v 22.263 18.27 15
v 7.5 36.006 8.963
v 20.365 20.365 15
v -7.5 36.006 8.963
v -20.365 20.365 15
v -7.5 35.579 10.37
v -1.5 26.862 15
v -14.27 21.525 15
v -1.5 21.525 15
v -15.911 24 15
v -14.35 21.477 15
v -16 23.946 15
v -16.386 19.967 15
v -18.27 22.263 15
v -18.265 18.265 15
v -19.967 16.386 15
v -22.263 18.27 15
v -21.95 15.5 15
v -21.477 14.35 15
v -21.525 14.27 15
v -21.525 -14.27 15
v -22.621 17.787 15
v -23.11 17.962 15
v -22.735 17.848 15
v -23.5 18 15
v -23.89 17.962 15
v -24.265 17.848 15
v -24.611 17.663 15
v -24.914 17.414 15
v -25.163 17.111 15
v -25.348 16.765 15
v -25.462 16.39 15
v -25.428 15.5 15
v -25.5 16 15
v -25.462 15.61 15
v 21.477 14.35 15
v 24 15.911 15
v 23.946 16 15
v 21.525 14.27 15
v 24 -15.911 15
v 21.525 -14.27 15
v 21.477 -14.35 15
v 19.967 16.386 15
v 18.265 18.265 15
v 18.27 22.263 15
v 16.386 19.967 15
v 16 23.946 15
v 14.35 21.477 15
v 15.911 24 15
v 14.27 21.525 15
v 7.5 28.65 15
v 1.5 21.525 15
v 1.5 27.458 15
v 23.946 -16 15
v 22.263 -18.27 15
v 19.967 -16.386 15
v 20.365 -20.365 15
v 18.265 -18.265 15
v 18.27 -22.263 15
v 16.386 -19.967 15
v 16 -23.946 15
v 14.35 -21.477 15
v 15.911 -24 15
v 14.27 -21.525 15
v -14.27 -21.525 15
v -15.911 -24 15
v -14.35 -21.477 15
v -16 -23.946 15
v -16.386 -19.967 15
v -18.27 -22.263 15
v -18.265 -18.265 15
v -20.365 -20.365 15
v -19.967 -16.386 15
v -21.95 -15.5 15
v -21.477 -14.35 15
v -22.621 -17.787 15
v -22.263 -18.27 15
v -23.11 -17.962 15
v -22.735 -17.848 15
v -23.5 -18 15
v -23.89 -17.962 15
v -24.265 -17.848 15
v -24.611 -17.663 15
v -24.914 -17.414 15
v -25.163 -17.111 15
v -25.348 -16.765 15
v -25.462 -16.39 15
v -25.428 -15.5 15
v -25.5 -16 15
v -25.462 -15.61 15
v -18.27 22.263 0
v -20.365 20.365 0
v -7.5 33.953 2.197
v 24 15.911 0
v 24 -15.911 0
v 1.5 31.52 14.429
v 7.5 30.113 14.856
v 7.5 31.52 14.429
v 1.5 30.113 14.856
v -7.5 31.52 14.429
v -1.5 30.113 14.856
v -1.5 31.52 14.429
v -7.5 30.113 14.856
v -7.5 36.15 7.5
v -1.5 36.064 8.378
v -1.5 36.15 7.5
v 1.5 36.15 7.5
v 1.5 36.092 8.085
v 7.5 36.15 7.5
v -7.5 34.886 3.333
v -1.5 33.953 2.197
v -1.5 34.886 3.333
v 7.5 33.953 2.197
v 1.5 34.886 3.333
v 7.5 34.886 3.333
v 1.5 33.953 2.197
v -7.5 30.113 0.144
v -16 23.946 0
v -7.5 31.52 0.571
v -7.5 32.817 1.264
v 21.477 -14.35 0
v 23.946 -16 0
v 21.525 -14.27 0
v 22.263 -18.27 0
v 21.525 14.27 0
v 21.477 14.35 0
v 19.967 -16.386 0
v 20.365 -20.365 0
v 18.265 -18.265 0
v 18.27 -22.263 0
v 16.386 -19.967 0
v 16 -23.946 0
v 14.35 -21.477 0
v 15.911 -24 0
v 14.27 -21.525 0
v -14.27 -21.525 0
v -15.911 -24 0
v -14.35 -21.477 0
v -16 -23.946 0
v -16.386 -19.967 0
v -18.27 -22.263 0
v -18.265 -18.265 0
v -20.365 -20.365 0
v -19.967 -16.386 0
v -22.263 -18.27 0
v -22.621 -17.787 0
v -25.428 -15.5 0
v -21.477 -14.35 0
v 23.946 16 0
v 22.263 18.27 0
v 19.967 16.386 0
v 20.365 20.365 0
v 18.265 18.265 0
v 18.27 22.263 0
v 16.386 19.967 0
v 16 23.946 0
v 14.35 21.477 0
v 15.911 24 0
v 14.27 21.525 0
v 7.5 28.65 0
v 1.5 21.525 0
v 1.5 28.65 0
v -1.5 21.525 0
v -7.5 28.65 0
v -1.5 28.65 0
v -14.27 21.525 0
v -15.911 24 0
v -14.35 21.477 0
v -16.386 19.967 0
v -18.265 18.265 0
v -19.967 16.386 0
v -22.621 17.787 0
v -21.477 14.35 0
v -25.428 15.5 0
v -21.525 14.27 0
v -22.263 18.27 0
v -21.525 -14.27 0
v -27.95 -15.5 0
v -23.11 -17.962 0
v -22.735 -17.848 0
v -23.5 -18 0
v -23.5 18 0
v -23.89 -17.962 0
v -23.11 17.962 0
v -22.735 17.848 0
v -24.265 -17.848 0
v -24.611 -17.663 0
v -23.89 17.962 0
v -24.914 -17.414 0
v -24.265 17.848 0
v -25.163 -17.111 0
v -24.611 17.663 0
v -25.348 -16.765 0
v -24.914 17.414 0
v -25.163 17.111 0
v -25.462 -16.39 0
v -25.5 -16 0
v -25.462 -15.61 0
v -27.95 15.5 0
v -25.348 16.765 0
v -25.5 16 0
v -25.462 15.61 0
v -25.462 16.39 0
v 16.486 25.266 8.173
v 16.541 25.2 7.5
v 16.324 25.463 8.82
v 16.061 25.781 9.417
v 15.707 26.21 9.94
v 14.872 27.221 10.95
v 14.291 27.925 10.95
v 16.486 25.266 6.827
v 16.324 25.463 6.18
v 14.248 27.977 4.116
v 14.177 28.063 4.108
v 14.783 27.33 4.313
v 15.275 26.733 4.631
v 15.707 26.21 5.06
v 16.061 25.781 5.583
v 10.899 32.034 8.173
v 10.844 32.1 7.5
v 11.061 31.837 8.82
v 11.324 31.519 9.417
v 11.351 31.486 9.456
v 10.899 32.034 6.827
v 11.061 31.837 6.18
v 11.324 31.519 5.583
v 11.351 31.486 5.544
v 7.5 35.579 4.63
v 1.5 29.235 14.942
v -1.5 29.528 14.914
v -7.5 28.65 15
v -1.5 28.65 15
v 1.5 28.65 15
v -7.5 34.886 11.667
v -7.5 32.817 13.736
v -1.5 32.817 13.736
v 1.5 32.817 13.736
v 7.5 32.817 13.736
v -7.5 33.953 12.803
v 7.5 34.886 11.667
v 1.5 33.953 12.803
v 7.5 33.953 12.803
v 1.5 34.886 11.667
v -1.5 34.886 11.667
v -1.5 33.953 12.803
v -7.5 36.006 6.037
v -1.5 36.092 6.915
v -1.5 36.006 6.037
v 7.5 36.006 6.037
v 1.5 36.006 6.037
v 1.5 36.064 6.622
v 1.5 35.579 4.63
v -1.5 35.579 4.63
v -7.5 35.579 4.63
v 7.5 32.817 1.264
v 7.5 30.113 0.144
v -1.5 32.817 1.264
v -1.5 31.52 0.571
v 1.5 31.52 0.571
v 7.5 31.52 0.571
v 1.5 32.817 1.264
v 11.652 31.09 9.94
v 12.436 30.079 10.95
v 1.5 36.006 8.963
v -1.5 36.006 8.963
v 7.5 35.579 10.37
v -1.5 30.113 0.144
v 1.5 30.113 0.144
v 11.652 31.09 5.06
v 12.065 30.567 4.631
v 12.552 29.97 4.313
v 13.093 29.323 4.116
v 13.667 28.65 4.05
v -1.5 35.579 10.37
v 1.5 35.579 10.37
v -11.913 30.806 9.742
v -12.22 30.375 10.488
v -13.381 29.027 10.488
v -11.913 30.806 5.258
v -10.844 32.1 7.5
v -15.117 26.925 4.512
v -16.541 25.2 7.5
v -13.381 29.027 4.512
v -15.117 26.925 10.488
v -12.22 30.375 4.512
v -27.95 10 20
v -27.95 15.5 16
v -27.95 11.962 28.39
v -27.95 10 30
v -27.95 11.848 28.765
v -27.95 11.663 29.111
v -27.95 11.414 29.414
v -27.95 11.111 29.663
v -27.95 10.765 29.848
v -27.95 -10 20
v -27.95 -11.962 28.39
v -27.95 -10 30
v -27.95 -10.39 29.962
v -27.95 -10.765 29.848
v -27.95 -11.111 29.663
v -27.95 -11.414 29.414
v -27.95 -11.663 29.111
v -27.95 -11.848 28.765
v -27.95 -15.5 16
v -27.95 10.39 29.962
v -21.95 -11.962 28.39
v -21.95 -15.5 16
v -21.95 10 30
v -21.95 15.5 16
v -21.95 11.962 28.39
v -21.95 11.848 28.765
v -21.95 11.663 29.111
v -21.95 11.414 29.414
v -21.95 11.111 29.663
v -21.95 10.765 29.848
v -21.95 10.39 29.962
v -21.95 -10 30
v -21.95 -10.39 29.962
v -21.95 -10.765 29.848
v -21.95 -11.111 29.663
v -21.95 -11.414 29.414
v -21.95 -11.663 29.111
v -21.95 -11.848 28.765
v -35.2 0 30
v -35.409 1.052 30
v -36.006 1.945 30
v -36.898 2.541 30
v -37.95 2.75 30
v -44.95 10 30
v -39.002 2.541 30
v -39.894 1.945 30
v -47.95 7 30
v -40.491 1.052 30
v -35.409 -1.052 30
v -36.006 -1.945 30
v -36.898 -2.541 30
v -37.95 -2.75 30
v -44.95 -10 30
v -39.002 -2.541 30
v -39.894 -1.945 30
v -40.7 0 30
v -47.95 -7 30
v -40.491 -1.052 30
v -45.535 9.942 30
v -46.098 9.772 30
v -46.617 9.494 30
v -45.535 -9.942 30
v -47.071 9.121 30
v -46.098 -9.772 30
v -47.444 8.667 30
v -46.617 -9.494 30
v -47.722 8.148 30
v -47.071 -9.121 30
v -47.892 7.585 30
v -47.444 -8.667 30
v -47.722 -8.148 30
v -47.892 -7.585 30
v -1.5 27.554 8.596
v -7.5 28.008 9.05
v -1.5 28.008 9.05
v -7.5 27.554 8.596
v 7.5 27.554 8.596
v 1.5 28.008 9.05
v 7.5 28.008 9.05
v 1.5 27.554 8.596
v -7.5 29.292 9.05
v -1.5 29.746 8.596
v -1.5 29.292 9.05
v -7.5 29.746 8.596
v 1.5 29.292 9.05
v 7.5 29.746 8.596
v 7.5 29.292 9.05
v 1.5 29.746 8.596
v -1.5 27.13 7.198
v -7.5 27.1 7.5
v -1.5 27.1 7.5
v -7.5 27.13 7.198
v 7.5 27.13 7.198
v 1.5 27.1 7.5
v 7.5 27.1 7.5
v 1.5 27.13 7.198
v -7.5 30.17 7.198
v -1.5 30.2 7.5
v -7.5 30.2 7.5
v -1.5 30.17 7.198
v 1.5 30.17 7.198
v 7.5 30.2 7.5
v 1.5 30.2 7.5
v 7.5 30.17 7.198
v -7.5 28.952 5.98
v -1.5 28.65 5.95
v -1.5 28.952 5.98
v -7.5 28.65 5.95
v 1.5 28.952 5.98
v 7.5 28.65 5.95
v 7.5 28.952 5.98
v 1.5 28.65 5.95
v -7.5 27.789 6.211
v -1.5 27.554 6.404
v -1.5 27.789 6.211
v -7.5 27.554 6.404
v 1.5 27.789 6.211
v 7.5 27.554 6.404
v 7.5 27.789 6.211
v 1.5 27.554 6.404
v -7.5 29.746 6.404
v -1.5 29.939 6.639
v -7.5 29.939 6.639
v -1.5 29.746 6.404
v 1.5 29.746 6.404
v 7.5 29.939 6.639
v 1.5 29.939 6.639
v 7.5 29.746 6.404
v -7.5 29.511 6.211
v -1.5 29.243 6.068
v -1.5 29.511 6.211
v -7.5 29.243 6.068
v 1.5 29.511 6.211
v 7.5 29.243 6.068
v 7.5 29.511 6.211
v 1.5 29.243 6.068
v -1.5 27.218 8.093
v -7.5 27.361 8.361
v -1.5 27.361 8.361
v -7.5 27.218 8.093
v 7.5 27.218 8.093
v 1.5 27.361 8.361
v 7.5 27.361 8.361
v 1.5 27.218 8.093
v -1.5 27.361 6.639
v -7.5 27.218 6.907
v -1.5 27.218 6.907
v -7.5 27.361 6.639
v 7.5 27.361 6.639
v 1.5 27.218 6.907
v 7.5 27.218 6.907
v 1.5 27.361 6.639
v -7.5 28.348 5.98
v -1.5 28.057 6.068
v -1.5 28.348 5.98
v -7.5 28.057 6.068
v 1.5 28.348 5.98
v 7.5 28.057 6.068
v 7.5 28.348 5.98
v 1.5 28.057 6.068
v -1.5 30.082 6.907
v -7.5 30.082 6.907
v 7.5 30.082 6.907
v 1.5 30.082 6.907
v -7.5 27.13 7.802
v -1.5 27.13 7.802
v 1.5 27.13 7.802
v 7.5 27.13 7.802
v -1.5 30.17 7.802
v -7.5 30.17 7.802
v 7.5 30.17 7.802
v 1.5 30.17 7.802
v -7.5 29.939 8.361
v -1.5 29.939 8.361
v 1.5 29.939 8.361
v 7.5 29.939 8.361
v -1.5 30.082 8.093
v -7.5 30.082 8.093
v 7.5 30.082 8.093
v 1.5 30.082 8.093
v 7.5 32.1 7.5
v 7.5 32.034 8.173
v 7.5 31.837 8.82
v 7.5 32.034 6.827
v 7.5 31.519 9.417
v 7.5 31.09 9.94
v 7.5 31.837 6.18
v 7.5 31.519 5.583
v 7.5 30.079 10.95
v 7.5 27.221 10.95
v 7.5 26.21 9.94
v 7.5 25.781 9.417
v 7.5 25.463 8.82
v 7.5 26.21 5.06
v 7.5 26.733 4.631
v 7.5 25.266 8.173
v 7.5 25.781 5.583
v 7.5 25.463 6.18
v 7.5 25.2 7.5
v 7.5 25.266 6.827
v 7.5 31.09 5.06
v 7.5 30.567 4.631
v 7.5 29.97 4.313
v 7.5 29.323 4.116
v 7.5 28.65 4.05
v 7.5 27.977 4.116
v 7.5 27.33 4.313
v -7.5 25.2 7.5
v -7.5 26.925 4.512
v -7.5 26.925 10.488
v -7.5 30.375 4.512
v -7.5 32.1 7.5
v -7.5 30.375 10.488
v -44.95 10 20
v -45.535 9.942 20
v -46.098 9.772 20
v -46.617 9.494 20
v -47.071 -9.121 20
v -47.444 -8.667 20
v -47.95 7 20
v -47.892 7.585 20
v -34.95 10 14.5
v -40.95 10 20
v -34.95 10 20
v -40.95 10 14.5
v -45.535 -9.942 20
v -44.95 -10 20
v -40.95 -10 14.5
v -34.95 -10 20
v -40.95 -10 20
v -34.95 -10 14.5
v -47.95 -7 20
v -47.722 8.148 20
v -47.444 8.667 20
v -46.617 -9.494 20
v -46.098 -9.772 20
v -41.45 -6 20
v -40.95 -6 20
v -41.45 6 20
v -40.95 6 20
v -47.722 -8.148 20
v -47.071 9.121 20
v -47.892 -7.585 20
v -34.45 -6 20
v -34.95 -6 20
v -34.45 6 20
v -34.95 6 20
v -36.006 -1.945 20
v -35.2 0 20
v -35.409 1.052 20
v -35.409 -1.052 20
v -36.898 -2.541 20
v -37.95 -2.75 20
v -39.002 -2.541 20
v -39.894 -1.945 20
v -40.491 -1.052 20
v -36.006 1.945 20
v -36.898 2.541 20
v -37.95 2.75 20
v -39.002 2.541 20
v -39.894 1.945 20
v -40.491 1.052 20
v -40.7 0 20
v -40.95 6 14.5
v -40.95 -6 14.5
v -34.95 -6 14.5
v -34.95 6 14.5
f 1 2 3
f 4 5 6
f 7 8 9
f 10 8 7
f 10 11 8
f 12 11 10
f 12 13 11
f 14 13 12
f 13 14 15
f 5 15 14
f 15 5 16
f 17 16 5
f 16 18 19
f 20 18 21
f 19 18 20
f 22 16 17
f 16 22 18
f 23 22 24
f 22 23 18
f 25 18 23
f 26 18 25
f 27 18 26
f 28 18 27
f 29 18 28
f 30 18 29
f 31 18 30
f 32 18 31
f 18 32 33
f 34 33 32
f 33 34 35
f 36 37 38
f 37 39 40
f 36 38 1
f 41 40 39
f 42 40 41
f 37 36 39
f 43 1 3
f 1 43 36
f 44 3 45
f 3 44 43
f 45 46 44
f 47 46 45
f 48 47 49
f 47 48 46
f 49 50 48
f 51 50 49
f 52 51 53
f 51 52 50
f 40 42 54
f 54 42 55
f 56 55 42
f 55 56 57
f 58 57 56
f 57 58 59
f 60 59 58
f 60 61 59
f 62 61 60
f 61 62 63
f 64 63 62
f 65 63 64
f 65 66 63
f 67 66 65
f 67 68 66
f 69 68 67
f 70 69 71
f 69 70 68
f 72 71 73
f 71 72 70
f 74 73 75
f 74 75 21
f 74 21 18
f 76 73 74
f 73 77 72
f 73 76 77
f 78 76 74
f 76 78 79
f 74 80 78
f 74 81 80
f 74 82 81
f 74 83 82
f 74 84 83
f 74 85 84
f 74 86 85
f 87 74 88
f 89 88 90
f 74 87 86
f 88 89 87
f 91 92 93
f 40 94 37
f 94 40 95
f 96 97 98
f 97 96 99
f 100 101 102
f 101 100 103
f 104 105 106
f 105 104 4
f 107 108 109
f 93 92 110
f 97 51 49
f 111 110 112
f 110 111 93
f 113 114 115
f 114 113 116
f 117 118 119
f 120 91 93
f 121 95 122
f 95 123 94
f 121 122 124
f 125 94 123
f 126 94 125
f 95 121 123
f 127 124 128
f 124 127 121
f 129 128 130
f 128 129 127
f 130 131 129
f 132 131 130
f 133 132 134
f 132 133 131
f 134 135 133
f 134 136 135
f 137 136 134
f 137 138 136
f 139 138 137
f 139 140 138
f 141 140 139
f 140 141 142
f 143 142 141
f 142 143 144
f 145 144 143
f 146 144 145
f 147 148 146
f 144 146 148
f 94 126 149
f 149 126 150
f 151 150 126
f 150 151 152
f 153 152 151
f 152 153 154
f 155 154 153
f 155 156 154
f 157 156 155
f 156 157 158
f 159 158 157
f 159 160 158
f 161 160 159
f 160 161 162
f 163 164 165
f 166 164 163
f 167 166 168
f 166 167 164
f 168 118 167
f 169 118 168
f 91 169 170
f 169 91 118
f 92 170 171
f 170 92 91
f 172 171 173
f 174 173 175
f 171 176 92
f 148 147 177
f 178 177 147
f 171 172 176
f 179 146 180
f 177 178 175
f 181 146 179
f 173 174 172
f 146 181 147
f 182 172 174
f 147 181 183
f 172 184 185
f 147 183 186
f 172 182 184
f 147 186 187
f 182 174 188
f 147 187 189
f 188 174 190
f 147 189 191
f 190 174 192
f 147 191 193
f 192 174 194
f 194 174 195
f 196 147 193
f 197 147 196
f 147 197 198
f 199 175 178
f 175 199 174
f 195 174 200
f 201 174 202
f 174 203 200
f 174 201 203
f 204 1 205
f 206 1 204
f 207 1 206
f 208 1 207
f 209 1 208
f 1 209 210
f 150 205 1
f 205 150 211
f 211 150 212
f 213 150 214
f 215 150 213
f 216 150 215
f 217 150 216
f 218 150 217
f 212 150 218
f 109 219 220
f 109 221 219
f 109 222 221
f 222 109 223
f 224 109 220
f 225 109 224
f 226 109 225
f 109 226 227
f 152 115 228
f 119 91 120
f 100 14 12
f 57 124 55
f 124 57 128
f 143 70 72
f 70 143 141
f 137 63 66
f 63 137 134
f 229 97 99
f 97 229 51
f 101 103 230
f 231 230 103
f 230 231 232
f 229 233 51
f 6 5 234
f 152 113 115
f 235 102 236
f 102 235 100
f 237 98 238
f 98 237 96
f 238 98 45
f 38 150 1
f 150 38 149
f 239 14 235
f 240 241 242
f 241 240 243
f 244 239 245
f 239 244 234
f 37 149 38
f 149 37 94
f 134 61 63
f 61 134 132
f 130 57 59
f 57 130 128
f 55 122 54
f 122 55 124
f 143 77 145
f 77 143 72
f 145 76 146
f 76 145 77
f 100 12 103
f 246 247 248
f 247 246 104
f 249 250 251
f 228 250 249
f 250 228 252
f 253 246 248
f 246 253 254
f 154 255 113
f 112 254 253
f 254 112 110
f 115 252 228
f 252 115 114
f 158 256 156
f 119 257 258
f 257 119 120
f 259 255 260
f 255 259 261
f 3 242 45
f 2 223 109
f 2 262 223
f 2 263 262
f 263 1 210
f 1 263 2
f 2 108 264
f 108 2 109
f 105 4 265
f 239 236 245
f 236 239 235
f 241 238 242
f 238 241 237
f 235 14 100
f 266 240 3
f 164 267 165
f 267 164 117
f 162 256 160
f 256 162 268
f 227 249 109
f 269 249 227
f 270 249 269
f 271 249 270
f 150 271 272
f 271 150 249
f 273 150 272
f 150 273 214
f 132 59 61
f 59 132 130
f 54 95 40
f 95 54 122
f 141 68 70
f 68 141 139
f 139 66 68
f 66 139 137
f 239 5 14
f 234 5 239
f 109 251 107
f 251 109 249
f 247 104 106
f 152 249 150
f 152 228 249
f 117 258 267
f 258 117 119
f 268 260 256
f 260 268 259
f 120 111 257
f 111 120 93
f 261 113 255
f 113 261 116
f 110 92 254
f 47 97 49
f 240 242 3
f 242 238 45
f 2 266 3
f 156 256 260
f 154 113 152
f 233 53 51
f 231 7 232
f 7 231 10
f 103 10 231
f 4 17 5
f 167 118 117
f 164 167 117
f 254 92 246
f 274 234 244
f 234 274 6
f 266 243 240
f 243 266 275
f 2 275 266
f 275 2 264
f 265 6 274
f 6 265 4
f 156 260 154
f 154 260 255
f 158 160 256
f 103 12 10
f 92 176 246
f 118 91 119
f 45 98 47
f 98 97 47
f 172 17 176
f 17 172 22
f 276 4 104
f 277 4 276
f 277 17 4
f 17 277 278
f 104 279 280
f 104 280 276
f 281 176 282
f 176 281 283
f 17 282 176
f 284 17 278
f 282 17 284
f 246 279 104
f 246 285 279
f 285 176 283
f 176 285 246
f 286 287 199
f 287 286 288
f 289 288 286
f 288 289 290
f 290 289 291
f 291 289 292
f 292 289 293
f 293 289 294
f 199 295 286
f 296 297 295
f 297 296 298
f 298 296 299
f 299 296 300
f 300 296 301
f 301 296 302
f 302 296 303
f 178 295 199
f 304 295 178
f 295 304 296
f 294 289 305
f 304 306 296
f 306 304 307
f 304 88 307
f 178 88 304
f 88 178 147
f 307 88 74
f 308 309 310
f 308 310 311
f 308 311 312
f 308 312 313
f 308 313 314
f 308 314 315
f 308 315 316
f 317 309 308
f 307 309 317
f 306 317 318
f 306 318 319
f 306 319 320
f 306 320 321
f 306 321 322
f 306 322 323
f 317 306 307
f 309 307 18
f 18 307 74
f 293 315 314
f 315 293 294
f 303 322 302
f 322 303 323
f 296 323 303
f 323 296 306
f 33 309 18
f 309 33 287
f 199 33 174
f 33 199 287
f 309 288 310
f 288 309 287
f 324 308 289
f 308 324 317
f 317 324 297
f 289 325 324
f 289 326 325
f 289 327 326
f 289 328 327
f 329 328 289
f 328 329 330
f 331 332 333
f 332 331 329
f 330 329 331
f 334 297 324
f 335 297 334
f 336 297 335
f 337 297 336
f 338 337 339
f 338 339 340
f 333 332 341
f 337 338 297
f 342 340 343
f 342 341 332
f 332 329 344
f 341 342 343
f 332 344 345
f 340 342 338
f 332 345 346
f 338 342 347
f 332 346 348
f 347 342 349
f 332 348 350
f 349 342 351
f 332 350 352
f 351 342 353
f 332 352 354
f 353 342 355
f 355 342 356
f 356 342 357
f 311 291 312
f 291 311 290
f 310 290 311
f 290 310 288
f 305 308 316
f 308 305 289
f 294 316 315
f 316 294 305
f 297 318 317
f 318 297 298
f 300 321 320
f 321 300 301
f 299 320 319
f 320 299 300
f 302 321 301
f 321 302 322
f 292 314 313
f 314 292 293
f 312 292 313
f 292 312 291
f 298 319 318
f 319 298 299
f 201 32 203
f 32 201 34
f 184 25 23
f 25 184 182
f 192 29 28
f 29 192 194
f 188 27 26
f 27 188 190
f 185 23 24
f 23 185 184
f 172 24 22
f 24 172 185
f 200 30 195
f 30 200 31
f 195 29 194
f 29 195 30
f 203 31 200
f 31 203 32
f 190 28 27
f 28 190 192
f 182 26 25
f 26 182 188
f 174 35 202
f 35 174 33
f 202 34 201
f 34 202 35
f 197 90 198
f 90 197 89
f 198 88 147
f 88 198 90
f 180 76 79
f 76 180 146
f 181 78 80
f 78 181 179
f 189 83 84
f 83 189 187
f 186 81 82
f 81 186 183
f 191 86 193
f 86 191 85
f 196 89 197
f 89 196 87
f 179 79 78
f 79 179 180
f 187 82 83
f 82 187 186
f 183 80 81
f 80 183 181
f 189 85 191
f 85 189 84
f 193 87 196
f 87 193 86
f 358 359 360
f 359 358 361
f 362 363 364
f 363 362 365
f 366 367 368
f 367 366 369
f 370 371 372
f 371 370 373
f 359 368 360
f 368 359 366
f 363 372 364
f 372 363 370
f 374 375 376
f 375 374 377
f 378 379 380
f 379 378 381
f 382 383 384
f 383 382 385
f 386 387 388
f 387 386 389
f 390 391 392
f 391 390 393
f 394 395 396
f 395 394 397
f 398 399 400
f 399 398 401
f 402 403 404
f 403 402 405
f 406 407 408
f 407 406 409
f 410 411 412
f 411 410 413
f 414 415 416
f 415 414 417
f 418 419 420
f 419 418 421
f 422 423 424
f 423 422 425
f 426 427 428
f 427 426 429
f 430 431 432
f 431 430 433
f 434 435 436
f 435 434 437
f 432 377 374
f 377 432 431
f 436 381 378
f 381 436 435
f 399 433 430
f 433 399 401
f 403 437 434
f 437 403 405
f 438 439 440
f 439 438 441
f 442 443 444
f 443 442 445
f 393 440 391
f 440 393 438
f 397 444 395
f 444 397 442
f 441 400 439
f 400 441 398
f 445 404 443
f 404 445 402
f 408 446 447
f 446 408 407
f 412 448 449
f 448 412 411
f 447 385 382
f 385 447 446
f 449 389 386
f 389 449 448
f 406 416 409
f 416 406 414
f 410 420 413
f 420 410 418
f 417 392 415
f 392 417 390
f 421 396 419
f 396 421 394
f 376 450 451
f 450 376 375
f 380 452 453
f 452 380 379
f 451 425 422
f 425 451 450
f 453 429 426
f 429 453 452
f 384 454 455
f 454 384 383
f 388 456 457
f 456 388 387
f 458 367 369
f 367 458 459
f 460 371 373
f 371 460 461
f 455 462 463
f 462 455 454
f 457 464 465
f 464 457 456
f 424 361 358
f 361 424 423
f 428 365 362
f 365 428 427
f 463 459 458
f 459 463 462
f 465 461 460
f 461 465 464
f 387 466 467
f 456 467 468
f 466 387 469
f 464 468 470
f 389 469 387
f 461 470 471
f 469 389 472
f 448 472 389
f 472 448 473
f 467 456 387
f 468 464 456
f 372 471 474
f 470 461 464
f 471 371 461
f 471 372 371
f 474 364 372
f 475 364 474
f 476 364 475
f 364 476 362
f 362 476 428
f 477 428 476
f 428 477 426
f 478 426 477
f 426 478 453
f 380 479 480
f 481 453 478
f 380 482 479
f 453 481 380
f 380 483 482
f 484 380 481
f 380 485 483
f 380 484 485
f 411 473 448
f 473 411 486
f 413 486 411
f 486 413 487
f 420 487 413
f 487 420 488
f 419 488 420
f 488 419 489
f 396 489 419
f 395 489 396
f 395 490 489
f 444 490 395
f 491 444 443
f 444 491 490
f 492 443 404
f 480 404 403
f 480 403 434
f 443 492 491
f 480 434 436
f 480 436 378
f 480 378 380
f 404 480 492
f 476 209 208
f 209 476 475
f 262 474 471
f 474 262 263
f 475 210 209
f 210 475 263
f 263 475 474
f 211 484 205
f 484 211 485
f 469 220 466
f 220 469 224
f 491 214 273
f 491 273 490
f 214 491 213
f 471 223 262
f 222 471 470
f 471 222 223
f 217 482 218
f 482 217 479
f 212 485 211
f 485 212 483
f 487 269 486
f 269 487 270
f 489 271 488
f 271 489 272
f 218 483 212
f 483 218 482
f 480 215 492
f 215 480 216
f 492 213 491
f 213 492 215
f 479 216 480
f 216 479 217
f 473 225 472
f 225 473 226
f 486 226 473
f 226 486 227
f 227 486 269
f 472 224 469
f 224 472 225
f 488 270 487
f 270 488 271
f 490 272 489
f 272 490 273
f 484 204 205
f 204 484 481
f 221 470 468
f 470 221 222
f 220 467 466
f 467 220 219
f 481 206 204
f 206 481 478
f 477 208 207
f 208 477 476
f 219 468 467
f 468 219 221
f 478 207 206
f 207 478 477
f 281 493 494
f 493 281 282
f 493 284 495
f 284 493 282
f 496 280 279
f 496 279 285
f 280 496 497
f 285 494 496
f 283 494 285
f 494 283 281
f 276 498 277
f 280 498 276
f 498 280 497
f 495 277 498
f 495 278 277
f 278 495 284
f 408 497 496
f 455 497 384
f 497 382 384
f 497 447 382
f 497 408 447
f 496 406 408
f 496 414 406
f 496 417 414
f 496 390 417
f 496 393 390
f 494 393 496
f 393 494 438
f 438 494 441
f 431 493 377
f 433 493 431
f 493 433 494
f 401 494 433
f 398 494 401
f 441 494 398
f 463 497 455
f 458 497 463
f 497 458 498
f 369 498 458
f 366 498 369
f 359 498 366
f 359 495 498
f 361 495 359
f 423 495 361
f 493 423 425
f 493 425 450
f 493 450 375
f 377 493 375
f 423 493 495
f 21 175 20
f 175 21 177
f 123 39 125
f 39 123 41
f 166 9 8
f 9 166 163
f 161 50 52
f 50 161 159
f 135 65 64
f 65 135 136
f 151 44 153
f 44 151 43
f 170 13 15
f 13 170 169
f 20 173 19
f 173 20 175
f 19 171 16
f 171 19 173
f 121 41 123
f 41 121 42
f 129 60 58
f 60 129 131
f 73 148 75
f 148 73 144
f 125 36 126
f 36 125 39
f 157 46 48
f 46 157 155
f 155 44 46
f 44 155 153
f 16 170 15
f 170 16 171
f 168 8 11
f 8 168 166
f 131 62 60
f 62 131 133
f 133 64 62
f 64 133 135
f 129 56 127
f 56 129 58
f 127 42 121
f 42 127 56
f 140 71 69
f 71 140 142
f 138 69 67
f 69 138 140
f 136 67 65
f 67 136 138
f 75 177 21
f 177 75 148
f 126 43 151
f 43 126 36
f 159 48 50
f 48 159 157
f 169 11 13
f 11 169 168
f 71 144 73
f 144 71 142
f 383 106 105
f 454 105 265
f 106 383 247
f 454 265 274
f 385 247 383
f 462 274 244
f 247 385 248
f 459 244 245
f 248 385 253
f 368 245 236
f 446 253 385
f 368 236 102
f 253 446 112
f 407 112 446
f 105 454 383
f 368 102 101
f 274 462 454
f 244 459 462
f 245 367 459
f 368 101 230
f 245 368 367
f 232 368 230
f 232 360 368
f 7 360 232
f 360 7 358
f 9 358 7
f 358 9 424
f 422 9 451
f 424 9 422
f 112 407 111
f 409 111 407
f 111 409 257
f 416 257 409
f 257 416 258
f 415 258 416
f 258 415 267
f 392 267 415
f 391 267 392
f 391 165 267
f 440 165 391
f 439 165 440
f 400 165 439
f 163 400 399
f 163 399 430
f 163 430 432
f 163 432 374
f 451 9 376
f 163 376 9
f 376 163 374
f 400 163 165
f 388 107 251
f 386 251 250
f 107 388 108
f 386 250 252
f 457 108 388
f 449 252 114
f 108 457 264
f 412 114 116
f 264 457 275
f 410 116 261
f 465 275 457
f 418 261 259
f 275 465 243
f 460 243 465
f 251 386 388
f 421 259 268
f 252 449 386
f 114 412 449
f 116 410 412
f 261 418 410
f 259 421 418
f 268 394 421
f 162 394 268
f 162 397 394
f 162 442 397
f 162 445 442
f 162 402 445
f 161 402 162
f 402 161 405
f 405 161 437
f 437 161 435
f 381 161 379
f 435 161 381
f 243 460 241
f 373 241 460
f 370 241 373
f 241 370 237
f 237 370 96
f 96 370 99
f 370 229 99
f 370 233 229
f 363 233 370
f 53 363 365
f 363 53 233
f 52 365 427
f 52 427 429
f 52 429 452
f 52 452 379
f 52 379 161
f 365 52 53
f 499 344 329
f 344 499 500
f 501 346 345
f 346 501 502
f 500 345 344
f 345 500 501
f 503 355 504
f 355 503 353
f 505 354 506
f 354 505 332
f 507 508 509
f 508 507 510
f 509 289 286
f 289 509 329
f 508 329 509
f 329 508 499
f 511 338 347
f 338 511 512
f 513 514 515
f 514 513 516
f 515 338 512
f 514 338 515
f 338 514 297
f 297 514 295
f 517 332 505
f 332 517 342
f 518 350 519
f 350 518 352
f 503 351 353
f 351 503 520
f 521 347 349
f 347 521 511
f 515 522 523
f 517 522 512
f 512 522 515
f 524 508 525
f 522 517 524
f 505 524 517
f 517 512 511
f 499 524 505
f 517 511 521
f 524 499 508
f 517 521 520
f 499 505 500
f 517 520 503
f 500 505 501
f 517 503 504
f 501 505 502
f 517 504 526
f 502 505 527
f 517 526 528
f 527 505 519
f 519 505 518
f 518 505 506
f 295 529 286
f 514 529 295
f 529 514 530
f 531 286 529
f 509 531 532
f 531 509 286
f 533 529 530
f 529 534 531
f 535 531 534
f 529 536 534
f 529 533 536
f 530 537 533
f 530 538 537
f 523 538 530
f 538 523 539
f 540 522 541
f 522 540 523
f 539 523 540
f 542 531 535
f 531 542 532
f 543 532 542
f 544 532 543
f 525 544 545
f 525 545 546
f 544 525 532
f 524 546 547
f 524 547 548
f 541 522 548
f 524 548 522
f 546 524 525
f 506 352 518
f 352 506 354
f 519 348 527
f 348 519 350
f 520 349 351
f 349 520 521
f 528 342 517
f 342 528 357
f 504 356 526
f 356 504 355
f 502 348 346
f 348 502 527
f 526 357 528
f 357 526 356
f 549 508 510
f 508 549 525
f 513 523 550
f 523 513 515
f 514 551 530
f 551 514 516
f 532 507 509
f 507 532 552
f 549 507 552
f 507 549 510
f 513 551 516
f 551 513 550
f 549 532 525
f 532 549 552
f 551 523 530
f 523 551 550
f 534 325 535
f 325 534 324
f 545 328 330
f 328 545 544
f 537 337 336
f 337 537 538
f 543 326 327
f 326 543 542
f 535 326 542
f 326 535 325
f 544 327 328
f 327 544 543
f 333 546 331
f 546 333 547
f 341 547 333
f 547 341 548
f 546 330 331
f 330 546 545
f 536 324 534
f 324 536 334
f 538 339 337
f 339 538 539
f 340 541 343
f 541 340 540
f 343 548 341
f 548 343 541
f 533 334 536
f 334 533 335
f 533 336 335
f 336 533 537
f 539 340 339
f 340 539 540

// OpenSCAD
//remix of http://www.thingiverse.com/thing:528934
//
//-- NEMA 17 stepper holder for 2020 rail
//  designed by L Buell  Feb 2016
//-- remixed from a well designed remix by AndrewBCN - November 2014
//-- remixed from an original (excellent) design by Paul Chase
//-- original design is Thingiverse no. 321523

//  I removed some of AndrewBCN's stuff and added the 2020 mount
// some of my 2020 rail mounted designs are meant to be drop onto the rail,
//   and some are meant to more fully engage and slide in from the end of the rail
// this design is drop-in style

//-- slop is tolerance, wall is wall thickness
slop = 0.2; // don't mess with these two!
wall = 3;

base_plate_height = 16;
Vert_plate_thickness = 6; // vertical base plate thickness
motor_w = 42;
motor_r = 50/2;
$fn=32;
height = wall+12;
m5 = 5.5;           // threaded z-rod diameter
m3 = 3.3/2;     // diam of m3 screw
m3n = 6.9/2;  // diam of m3 nut
m3nh = 4;      // nut height of m3 nuts that hold adaptor to x-ends
m3nl = 20;     // screw length of nuts that hold adaptor to x-ends
hole_sep = 20;  // separation of mount holes - mount holes deleted - this now controls height of mount

rail_Ht=20;  //height of 2020 rail 
2020_mount_width=20;  // width of mounting arm on top of 2020 rail
2020_mount_thickness=10;  // thickness of mounting arm on top of 2020 rail
mount_radius=3;  //radius of corners of rounded block
2020_groove_size=6; //used for the width and depth of the block fitting into the 2020 rail
Tslot_nut_length=12;  //length of T-slot nut

complete_part();
//mirror(0,0,1) complete_part();

module complete_part(){
difference(){
union(){
stepper_holder();	
translate([-motor_w/2-2020_mount_width/2-Vert_plate_thickness-.95,0,10+hole_sep-2020_mount_thickness/2])2020_block();  //block that mounts into the 2020 rail
}  //union
// cavities

// 2020 mounting block cavities
translate([-motor_w/2-2020_mount_width/2-Vert_plate_thickness-.95,-2020_mount_width/2,0]){
//cutout for t-slot nut
translate([-2020_mount_width/2+rail_Ht/2-2020_groove_size/2-.5,(2020_mount_width-Tslot_nut_length)/2,rail_Ht-2020_groove_size-.5])cube([2020_groove_size+1,Tslot_nut_length,2020_groove_size+.5]);
// hole for t-slot nut
translate([-2020_mount_width/2+rail_Ht/2,2020_mount_width/2,rail_Ht+2020_mount_thickness/2])cylinder(h=rail_Ht, r=5.5/2,center=true,$fn=16);
}  // translate
}  //difference
}  //module

module 2020_block(){
rounded_rectangle([rail_Ht,2020_mount_width,2020_mount_thickness],mount_radius,center=true);
// fill in rounded corner
translate([rail_Ht/2-3,-2020_mount_width/2,-2020_mount_thickness/2])cube([Vert_plate_thickness,2020_mount_width,2020_mount_thickness]);
// square block to fit in slot on rail
translate([-2020_groove_size/2,-2020_mount_width/2,-2020_mount_thickness/2-2020_groove_size+.5])cube([2020_groove_size,2020_mount_width,2020_groove_size]);
}  //module 2020_block

module stepper_holder() {
	scale_slop = 1.025; // another tolerance
	scale_size = (motor_w+wall+wall)/motor_w;	
	difference(){
		union(){
			hull(){
				//strap
				scale([scale_size,scale_size,1]) motor_base(h=height);
				//clamp
				translate([0,motor_w/2+wall+m3+wall,height/2]) rotate([0,90,0]) cylinder(r=height/2, h=5*wall, center=true);			
			}
			//mount base
			hull(){
				// bottom block of mount
				translate([-motor_w/2-wall-wall/2+0.55,0,base_plate_height/2]) cube([Vert_plate_thickness,31,base_plate_height], center=true);
				//  top cylinders that make top of mount
				translate([-motor_w/2-wall-wall/2+0.55-Vert_plate_thickness/2,+10,8+hole_sep]) rotate([0,90,0]) cylinder(r=2, h=Vert_plate_thickness);
				translate([-motor_w/2-wall-wall/2+0.55-Vert_plate_thickness/2,-10,8+hole_sep]) rotate([0,90,0]) cylinder(r=2, h=Vert_plate_thickness);				
			}
			// reinforcement cylinders in corners
			translate([-motor_w/2-wall-wall+3.5,+16,0]) rotate([0,0,0]) cylinder(r=2, h=15);
			translate([-motor_w/2-wall-wall+3.5,-16,0]) rotate([0,0,0]) cylinder(r=2, h=15);
		}  //union

		//cavities
		// slit
		translate([0,motor_w/2,height/2]) cube([wall,motor_w,height+1],center=true);
		// clamp holes
		render() translate([0,motor_w/2+wall+m3+wall,height/2]) rotate([0,90,0]) clamp_holes();
		// motor cross section hollowed out
		scale([scale_slop,scale_slop,1]) translate([0,0,-.05]) motor_base(h=height+.1);
	}
	
	// uncomment this if you need a place to tie wires to
	/*
	//-- AndrewBCN: I added a place where people can tie some wires
	difference(){
	   rotate([0,0,-90]) translate([22.5,+8,0]) cube([8,8,4]);
	   rotate([0,0,-90]) translate([26.5,+10,-2]) cube([1.5,4,12]);
	}
	*/	
} //module stepper_holder

module clamp_holes() {
	len = wall*5;
	// screwhole
	rotate([0,0,-90]) cap_cylinder(r=3.1/2, h=len*2, center=true); 
	// nut is on the inside
	mirror([0,0,1]) translate([0,0,wall*2.5]) rotate([0,0,-90]) cylinder(r=6.9/2, h=len, $fn=6);
	// screw is on the outside
	translate([0,0,wall*2.5]) rotate([0,0,-90]) cap_cylinder(r=6.9/2, h=len);
}

module cap_cylinder(r=1, h=1, center=false){
	render() union() {
		cylinder(r=r, h=h, center=center);
		intersection(){
			rotate([0,0,22.5]) cylinder(r=r/cos(180/8), h=h, $fn=8, center=center);
			translate([0,-r/cos(180/4),0]) rotate([0,0,0]) cylinder(r=r/cos(180/4), h=h, $fn=4, center=center);
		}
	}
}

//-- Motor cross section
module motor_base(h=wall){
	intersection(){
		translate([0,0,h/2]) cube([motor_w, motor_w, h], center=true);
		cylinder(r=motor_r+slop, h=h, $fn=64);
	}
}

// From: https://github.com/T3P3/Mendel90/tree/LaserCut/scad
// utils.scad
module rounded_square(w, h, r){
    union() {
        square([w - 2 * r, h], center = true);
        square([w, h - 2 * r], center = true);
        for(x = [-w/2 + r, w/2 - r])
            for(y = [-h/2 + r, h/2 - r])
                translate([x, y])
                    circle(r = r);
    }
}
// From: https://github.com/T3P3/Mendel90/tree/LaserCut/scad
// utils.scad
module rounded_rectangle(size, r, center = true){
    w = size[0];
    h = size[1];
    linear_extrude(height = size[2], center = center)
        rounded_square(size[0], size[1], r);
}
